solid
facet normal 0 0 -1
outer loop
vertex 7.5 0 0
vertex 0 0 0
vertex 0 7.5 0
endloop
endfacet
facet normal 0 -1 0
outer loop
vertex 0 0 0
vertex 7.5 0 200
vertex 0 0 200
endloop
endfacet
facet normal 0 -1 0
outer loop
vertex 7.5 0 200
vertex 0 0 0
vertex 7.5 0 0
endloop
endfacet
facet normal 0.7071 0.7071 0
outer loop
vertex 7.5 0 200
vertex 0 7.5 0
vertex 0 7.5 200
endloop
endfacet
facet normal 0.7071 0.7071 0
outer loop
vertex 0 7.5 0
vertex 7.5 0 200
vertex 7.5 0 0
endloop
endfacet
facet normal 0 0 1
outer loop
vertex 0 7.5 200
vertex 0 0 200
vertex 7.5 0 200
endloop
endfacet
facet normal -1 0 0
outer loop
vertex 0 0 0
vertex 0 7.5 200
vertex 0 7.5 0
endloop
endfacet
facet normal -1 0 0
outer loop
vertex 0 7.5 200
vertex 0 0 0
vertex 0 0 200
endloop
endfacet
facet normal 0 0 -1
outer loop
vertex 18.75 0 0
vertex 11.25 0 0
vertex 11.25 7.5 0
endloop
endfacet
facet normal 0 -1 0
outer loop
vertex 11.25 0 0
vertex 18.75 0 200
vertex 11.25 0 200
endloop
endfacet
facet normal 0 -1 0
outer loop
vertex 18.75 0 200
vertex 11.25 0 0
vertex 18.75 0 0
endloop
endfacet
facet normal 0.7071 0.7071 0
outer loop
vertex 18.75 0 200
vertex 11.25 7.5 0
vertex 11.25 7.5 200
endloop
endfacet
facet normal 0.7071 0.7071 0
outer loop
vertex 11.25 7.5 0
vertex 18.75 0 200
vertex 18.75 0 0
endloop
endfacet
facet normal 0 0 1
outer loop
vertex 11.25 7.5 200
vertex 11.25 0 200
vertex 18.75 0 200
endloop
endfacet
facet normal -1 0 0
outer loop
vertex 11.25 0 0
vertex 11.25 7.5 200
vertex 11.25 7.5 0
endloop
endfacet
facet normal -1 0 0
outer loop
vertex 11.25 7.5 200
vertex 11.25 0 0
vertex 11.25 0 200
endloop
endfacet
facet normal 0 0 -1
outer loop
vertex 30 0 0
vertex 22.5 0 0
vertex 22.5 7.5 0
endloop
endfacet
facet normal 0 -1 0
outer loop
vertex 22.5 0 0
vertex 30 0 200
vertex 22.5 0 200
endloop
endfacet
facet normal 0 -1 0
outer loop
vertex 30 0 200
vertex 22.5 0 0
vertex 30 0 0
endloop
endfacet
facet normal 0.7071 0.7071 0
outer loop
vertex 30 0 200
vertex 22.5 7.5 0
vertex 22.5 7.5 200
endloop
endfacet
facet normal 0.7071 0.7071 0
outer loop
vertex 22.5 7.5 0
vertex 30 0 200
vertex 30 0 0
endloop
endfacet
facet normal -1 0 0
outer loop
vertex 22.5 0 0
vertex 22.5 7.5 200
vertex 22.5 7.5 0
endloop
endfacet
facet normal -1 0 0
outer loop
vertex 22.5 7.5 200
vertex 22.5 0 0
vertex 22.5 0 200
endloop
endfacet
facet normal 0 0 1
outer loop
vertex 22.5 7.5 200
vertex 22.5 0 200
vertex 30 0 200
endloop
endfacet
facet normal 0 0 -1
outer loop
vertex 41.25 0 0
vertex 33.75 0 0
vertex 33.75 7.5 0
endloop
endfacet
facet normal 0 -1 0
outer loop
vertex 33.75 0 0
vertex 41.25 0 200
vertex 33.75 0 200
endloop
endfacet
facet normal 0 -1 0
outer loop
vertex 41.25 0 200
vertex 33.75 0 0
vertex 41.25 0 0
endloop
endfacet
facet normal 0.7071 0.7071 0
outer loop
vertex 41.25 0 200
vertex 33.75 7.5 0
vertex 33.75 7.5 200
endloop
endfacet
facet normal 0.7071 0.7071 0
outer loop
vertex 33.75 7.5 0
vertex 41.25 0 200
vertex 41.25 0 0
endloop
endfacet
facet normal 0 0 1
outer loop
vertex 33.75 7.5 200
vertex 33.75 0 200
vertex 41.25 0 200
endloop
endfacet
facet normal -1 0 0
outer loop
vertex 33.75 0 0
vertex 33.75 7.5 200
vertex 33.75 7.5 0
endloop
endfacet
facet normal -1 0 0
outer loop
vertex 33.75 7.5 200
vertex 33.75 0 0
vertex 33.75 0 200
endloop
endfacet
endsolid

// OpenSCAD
// file: params.scad
// Global Parameters for Dimon brace

// The HSS is a HSS 127x127x13 G40.20

HSS_d = 127.0;
HSS_b = 127.0;
HSS_t = 12.7;
HSS_l = 250.0;    //length of HSS for model

// The tongue plate (welded into slot in HSS)

TP_t = 20.0;
// TP_w = 280.0;  // width of plate
TP_w = 250.0;
TP_l = 250.0;   // total length
TP_lw = 100.0;  // length of welded portion

// cover plate (welded on HSS)

CP_t = 10;
CP_w = 60;
CP_l = 200;
CP_setback = 10;
CP_lw = CP_l;

// welds

TP_D = 8;
CP_D = 6;

// Bolts

BOLT_d = 20;    // diameter
BOLT_hd = BOLT_d + 2;    // hole diameter
// BOLT_s = 75;             // longitudinal spacing (pitch)
// BOLT_g = 75;             // transverse spacing (gauge)
BOLT_s = 70;             // longitudinal spacing (pitch)
BOLT_g = 70;             // transverse spacing (gauge)
BOLT_NG = 3;             // number of gauge lines (across)
BOLT_NT = 2;             // number of transverse lines
// BOLT_e = 40;		 // end distance
BOLT_e = 35;		 // end distance

// Gusset plate

GP_w = TP_w;
GP_t = TP_t;
// GP_w2 = 110;
GP_w2 = 70;
GP_theta = 45;
GP_l1 = GP_w2 + GP_w*cos(GP_theta);   // dist out to furthest pt
GP_l = GP_l1*tan(GP_theta) + GP_w*sin(GP_theta);
// GP_gap = 10;		// gap to tongue plate
GP_gap = 5;		// gap to tongue plate

// Lap Plate

LP_t = 10;
LP_w = 230;
LP_l = 2*(BOLT_NT-1)*BOLT_s + 4*BOLT_e + GP_gap;


// misc.

$fn = 60;       // number of sides for poly approx to circles
// main file
include <params.scad>;

module weld(D,L) {
    pts = [[0,0],[D,0],[0,D]];
    linear_extrude(L) polygon(pts);
}

render() {
    S = 1.25;
    weld(CP_D*S,CP_lw);
    translate([1.5*CP_D*S,0,0]) weld(CP_D*S,CP_lw);
    translate([3.0*CP_D*S,0,0]) weld(CP_D*S,CP_lw);
    translate([4.5*CP_D*S,0,0]) weld(CP_D*S,CP_lw);
}
